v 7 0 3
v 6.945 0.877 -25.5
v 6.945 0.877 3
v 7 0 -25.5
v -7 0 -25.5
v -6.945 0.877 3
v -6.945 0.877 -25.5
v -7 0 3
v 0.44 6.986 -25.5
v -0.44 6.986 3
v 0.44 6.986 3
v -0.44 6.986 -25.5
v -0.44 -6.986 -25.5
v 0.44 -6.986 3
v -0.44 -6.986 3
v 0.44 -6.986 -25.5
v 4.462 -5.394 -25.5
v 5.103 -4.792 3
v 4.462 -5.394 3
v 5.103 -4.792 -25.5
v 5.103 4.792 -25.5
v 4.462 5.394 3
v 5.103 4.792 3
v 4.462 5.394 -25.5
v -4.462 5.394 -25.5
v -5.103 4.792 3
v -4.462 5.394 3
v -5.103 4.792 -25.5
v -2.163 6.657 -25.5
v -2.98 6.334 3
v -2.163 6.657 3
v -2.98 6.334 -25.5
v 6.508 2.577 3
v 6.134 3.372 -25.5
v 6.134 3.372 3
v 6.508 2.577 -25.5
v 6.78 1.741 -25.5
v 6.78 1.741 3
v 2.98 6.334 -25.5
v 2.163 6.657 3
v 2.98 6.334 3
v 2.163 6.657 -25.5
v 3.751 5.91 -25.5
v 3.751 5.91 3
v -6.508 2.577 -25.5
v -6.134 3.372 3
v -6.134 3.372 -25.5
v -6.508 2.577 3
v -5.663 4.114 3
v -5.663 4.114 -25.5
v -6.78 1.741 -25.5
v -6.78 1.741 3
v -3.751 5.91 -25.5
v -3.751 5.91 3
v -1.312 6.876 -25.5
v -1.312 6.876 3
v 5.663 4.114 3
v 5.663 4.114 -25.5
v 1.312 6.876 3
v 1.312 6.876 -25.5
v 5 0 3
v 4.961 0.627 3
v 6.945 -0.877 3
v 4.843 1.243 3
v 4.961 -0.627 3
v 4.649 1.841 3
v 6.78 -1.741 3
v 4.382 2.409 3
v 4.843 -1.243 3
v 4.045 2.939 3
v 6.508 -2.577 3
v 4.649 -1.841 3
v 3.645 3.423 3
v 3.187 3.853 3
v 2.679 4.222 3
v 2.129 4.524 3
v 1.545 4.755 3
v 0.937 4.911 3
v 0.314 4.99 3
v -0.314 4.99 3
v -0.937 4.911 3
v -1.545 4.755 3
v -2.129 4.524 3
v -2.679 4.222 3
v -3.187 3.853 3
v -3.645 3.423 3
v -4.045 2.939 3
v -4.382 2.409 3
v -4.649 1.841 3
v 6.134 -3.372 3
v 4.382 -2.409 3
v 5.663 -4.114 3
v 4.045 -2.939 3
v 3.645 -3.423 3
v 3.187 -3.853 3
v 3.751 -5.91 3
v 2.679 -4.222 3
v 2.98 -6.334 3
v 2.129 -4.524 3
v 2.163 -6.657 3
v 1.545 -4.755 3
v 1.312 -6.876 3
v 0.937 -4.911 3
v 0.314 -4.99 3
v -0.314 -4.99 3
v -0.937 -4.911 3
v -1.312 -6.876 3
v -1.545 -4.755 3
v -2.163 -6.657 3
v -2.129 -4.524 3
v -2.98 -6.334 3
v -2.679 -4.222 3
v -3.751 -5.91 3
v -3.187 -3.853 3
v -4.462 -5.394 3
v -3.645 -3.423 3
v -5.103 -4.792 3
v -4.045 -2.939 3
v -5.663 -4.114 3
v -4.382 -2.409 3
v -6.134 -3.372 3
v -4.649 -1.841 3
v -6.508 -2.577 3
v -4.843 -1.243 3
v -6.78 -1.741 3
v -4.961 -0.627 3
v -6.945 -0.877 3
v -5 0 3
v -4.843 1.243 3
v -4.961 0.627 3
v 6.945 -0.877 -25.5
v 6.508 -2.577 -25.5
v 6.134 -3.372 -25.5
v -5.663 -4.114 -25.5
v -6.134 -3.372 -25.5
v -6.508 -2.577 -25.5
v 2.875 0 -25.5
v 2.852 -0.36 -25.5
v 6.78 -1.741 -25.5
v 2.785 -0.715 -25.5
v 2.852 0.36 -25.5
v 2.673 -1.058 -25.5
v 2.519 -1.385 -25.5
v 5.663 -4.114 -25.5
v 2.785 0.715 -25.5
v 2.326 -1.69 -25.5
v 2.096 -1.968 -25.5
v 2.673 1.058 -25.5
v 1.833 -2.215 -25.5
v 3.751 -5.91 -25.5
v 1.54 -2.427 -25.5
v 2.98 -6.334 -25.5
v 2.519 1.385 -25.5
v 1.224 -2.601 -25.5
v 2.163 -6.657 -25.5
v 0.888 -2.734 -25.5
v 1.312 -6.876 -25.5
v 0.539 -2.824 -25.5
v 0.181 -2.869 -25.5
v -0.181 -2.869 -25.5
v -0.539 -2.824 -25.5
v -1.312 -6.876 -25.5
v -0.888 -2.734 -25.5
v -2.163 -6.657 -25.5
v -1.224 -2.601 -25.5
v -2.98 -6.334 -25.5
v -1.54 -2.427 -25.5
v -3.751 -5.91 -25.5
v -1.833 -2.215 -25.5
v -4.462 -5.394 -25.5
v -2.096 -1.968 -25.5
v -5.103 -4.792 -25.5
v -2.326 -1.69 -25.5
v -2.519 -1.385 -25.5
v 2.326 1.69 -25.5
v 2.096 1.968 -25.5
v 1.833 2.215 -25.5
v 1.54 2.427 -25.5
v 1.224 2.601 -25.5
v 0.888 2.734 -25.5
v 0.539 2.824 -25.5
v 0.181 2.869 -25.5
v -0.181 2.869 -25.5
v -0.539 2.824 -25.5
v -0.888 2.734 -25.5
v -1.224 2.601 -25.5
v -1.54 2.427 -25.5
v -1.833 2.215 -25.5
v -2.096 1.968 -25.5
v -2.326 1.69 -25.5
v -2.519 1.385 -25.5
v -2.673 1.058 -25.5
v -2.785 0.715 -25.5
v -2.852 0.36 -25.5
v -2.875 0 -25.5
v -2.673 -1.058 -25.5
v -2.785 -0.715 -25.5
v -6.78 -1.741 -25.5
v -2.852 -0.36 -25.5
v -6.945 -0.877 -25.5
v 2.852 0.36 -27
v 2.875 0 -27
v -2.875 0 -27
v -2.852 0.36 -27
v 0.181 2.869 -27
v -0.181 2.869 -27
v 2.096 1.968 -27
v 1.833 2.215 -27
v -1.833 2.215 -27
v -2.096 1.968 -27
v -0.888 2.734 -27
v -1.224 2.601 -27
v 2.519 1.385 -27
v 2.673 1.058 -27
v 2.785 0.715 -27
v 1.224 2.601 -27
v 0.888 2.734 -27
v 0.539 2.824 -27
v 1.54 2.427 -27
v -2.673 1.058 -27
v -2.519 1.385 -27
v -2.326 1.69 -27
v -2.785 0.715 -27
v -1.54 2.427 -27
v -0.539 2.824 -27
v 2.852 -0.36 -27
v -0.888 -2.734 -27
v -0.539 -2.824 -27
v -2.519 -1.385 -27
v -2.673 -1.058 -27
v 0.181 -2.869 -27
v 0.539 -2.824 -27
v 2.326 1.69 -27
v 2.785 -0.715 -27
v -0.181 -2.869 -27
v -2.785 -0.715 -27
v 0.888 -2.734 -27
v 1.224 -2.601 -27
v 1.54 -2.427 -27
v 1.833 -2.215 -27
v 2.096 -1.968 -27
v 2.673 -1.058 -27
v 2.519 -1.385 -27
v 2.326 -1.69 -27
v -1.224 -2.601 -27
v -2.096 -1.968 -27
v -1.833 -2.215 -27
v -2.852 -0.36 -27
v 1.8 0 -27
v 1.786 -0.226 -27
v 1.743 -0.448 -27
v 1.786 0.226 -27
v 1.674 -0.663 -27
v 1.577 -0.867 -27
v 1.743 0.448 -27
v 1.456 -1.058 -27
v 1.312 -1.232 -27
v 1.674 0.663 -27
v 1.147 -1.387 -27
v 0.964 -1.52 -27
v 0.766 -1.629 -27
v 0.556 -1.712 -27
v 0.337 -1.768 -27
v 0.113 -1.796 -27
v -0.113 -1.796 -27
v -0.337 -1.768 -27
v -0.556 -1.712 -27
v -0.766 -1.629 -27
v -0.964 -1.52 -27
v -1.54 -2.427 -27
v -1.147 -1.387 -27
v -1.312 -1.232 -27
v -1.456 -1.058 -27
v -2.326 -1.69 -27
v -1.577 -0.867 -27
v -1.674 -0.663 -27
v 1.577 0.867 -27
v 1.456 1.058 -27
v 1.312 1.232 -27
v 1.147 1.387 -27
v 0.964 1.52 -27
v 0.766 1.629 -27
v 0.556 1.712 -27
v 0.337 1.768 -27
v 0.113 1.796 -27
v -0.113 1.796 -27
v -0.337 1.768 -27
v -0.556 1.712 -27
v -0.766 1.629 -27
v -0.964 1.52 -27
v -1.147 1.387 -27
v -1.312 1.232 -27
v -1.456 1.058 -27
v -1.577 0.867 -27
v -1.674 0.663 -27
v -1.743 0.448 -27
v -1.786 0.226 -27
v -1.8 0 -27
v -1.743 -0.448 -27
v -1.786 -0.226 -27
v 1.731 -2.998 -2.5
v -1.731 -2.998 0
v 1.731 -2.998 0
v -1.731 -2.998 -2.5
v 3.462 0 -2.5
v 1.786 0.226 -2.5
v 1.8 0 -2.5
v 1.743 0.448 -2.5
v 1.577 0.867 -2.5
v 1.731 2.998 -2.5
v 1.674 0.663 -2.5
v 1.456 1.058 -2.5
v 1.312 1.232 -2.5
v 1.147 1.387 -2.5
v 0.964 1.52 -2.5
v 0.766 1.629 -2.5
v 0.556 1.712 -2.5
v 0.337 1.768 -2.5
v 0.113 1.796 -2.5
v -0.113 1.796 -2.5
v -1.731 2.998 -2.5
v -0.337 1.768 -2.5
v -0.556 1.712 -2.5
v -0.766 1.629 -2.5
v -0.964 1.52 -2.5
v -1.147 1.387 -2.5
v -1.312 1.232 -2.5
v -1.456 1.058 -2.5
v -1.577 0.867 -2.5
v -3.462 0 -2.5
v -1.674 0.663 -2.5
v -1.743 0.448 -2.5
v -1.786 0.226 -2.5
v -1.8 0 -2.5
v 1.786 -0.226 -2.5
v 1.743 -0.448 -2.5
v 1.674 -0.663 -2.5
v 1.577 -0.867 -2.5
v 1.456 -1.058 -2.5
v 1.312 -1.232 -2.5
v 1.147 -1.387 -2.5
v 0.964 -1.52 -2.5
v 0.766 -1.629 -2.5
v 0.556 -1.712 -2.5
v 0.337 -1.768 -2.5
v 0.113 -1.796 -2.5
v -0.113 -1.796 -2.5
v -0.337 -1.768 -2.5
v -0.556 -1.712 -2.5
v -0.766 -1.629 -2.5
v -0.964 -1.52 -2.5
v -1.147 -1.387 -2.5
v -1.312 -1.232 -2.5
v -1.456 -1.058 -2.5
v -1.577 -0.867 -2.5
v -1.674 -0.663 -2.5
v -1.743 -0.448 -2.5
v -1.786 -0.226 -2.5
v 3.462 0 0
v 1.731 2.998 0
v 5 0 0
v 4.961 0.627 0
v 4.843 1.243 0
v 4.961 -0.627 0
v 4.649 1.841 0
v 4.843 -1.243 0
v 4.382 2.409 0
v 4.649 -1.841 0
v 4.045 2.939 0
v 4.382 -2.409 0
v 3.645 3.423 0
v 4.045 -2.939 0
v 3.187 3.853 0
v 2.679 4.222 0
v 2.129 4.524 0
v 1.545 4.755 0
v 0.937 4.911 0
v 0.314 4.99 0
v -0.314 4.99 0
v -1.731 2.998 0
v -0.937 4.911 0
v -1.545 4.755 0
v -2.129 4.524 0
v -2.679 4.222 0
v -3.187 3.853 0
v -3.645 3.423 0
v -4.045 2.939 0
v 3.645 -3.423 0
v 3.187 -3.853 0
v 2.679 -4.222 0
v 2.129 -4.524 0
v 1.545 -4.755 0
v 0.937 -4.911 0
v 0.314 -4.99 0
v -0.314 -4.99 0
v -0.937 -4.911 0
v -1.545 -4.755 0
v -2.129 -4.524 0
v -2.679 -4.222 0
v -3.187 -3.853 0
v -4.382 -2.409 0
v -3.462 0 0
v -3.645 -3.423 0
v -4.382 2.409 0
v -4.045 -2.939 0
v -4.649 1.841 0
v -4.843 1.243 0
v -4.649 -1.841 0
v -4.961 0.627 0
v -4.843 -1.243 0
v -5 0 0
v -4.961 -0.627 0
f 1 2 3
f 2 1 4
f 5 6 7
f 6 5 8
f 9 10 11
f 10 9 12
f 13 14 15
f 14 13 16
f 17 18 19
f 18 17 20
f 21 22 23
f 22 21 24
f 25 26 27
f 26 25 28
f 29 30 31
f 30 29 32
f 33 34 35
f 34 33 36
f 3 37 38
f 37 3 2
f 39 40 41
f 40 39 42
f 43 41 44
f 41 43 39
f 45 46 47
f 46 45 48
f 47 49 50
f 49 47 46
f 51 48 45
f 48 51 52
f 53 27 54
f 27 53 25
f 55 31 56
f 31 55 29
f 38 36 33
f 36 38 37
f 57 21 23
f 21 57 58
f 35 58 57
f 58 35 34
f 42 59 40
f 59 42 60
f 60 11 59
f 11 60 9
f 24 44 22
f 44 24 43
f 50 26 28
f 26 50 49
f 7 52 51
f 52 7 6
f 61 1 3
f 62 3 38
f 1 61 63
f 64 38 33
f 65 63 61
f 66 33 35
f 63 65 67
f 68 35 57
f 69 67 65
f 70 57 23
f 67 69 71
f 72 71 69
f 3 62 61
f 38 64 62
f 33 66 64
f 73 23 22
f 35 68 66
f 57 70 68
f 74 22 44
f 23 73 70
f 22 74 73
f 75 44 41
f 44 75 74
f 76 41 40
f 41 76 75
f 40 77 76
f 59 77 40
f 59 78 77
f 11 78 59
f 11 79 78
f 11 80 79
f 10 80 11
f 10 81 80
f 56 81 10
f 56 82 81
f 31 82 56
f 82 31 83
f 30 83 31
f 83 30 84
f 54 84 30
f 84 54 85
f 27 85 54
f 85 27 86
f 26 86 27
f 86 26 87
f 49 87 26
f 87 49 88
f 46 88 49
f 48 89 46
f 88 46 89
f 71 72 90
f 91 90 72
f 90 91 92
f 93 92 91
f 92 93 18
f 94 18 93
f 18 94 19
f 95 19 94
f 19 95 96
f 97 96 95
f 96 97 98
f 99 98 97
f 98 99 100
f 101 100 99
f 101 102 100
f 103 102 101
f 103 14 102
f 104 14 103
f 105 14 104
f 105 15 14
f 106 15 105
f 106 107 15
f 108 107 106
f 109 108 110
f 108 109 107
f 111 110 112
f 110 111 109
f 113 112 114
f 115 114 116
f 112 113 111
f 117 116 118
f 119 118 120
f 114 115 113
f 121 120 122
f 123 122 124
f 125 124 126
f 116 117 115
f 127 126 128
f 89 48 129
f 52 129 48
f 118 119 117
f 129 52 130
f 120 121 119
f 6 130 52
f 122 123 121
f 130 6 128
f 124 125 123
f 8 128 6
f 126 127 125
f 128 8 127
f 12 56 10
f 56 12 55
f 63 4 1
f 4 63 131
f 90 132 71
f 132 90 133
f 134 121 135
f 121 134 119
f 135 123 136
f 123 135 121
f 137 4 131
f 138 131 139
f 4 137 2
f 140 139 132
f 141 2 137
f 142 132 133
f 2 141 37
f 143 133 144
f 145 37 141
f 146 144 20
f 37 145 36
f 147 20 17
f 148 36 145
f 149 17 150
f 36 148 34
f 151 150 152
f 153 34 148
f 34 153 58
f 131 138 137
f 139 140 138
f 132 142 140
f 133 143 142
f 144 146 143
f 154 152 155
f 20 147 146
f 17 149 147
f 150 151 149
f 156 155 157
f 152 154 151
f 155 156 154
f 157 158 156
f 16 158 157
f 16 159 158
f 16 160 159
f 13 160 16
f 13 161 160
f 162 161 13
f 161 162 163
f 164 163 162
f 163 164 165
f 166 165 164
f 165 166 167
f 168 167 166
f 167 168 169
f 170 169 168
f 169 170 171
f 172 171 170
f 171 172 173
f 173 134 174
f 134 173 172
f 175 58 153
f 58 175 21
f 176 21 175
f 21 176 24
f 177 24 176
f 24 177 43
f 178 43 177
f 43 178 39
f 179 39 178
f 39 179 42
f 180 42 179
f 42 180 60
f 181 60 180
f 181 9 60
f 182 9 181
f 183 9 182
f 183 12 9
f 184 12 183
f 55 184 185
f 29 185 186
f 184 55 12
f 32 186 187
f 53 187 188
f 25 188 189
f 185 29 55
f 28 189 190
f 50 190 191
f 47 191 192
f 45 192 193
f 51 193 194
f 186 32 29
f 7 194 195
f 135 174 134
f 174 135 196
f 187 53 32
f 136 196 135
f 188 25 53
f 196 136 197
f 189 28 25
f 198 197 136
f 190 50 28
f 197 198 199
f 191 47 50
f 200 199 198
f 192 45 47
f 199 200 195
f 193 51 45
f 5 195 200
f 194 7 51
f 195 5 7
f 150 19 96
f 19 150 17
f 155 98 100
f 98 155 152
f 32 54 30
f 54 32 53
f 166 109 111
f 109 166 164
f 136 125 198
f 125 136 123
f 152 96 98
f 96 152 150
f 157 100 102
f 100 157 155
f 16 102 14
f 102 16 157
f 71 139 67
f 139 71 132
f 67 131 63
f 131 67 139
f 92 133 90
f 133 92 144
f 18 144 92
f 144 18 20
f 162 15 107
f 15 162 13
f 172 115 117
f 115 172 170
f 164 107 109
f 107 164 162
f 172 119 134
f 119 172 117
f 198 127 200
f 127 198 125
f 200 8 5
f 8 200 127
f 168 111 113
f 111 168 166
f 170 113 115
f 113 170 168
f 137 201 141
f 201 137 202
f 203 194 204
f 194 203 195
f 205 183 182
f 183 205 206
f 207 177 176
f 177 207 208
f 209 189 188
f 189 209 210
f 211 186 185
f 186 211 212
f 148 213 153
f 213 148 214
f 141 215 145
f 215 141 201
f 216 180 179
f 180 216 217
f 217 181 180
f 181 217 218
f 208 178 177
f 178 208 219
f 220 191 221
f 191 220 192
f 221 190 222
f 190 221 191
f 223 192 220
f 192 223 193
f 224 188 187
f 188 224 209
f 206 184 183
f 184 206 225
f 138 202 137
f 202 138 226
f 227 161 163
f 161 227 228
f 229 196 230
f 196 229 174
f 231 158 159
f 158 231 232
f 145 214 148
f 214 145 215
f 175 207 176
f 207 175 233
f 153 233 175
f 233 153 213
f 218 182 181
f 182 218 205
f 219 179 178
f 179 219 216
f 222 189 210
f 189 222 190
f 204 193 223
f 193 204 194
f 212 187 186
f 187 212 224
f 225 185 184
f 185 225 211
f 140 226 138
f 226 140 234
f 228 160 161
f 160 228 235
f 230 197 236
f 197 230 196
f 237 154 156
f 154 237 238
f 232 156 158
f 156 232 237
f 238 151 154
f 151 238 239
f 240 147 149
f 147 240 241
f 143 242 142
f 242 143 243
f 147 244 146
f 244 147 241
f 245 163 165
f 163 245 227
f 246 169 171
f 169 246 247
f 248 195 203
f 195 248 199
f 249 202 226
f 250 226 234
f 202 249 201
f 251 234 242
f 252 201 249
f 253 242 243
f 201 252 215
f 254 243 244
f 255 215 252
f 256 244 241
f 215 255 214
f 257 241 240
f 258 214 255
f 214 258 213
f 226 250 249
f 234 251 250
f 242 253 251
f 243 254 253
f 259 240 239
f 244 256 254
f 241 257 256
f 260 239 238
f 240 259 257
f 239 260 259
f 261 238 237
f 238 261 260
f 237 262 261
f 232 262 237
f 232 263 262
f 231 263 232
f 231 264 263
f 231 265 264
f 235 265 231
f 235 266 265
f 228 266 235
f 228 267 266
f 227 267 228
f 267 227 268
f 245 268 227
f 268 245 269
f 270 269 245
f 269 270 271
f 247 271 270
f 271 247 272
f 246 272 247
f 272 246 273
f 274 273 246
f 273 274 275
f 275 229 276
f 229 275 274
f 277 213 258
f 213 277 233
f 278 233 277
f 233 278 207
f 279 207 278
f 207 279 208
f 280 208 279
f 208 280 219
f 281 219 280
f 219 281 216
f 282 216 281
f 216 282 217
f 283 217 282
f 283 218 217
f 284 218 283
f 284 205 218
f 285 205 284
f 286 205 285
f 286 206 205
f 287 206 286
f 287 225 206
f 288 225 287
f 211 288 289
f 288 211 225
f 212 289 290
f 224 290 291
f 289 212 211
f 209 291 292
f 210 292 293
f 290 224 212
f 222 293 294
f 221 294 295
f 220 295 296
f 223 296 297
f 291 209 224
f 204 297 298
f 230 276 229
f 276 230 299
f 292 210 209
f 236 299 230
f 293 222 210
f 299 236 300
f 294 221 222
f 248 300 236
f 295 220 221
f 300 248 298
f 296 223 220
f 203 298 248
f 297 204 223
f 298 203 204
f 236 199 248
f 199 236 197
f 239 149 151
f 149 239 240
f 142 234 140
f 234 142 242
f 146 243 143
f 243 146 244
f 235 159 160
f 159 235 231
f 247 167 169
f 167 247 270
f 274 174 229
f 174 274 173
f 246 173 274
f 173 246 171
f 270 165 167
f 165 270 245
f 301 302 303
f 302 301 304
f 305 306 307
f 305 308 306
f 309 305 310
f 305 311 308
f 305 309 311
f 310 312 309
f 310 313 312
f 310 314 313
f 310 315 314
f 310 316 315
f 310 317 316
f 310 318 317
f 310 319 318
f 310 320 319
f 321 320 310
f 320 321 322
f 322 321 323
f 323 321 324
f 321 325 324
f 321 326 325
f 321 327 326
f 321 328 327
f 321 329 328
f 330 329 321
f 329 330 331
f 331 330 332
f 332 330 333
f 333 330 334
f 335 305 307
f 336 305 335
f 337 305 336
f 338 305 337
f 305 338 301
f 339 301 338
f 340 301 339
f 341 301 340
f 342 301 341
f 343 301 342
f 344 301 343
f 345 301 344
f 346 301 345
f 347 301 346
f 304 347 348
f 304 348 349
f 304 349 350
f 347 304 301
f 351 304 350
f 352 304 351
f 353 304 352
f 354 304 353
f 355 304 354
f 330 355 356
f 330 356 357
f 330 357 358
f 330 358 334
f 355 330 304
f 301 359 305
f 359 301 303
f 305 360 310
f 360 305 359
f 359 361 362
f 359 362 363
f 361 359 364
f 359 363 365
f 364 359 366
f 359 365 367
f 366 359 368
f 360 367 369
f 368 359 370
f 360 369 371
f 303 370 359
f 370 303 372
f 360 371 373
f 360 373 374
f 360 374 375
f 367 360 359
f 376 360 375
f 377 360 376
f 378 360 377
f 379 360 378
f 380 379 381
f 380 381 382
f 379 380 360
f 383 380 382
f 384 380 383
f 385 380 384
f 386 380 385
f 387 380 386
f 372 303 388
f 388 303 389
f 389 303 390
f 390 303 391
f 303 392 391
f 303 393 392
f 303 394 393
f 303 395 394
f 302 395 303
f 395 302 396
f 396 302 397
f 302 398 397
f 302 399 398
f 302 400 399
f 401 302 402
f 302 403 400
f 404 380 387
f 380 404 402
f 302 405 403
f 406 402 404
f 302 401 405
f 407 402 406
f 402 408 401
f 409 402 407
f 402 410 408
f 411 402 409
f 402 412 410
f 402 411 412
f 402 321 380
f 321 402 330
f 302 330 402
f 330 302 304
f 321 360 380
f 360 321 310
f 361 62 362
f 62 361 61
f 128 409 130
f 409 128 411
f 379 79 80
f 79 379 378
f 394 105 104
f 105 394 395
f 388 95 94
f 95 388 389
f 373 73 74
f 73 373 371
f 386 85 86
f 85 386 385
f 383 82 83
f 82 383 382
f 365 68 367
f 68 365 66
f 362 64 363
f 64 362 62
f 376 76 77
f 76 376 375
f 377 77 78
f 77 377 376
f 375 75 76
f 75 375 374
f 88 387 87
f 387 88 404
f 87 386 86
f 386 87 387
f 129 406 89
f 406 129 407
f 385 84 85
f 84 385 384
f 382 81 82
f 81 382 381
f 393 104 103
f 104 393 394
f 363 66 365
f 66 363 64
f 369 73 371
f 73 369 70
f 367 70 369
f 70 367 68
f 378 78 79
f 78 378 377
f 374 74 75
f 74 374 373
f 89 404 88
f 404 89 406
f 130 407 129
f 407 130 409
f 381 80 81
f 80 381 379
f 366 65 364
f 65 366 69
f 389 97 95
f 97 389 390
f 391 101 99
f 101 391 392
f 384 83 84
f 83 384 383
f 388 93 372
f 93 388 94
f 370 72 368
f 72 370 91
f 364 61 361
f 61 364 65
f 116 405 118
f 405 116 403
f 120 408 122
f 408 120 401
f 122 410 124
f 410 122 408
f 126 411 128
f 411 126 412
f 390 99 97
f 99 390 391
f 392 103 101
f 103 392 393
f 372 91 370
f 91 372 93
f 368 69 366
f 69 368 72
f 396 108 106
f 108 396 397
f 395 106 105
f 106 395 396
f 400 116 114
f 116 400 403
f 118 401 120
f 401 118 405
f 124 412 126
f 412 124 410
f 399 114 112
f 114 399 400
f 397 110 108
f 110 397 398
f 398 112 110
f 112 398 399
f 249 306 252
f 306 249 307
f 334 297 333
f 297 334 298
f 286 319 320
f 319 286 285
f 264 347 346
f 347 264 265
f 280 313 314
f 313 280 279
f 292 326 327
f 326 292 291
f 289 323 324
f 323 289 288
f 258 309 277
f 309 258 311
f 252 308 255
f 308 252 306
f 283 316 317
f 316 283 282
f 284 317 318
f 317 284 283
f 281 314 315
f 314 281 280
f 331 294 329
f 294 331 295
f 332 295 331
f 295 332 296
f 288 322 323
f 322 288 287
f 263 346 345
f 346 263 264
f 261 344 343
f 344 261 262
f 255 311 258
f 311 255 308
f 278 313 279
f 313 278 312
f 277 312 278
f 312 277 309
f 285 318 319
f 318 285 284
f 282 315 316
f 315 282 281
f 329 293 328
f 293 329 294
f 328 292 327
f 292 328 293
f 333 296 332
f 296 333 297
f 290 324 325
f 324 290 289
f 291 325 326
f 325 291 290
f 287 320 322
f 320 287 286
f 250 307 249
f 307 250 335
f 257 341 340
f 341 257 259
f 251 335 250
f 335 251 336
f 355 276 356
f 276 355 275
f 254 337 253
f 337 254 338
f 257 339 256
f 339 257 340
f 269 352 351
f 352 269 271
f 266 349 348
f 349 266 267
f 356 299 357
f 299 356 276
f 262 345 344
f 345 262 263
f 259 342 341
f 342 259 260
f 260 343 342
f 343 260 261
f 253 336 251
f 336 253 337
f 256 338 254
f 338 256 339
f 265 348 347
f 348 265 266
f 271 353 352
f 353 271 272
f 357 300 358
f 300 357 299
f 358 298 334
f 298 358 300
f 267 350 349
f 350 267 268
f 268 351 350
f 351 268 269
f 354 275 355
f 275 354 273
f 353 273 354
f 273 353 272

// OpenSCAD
$fn = 50;

difference() {
	union() {
		translate(v = [0, 0, -25.5]) {
			cylinder(h = 28.5, r = 7.0);
		}
		#translate(v = [0, 0, -27.0]) {
			cylinder(h = 27, r = 2.875);
		}
	}
	union() {
		translate(v = [0, 0, 0]) {
			rotate(a = [0, 0, 0]) {
				difference() {
					union() {
						translate(v = [0, 0, -2.5]) {
							linear_extrude(height = 2.5) {
								polygon(points = [[3.4619999999999997, 0.0], [1.7310000000000003, 2.9981799479017264], [-1.7309999999999992, 2.9981799479017264], [-3.4619999999999997, 4.2397272186481365e-16], [-1.7310000000000014, -2.998179947901726], [1.7309999999999977, -2.9981799479017277]]);
							}
						}
					}
					union();
				}
			}
		}
		#cylinder(h = 3, r = 5.0);
		#translate(v = [0, 0, -100.0]) {
			cylinder(h = 200, r = 1.8);
		}
	}
}
